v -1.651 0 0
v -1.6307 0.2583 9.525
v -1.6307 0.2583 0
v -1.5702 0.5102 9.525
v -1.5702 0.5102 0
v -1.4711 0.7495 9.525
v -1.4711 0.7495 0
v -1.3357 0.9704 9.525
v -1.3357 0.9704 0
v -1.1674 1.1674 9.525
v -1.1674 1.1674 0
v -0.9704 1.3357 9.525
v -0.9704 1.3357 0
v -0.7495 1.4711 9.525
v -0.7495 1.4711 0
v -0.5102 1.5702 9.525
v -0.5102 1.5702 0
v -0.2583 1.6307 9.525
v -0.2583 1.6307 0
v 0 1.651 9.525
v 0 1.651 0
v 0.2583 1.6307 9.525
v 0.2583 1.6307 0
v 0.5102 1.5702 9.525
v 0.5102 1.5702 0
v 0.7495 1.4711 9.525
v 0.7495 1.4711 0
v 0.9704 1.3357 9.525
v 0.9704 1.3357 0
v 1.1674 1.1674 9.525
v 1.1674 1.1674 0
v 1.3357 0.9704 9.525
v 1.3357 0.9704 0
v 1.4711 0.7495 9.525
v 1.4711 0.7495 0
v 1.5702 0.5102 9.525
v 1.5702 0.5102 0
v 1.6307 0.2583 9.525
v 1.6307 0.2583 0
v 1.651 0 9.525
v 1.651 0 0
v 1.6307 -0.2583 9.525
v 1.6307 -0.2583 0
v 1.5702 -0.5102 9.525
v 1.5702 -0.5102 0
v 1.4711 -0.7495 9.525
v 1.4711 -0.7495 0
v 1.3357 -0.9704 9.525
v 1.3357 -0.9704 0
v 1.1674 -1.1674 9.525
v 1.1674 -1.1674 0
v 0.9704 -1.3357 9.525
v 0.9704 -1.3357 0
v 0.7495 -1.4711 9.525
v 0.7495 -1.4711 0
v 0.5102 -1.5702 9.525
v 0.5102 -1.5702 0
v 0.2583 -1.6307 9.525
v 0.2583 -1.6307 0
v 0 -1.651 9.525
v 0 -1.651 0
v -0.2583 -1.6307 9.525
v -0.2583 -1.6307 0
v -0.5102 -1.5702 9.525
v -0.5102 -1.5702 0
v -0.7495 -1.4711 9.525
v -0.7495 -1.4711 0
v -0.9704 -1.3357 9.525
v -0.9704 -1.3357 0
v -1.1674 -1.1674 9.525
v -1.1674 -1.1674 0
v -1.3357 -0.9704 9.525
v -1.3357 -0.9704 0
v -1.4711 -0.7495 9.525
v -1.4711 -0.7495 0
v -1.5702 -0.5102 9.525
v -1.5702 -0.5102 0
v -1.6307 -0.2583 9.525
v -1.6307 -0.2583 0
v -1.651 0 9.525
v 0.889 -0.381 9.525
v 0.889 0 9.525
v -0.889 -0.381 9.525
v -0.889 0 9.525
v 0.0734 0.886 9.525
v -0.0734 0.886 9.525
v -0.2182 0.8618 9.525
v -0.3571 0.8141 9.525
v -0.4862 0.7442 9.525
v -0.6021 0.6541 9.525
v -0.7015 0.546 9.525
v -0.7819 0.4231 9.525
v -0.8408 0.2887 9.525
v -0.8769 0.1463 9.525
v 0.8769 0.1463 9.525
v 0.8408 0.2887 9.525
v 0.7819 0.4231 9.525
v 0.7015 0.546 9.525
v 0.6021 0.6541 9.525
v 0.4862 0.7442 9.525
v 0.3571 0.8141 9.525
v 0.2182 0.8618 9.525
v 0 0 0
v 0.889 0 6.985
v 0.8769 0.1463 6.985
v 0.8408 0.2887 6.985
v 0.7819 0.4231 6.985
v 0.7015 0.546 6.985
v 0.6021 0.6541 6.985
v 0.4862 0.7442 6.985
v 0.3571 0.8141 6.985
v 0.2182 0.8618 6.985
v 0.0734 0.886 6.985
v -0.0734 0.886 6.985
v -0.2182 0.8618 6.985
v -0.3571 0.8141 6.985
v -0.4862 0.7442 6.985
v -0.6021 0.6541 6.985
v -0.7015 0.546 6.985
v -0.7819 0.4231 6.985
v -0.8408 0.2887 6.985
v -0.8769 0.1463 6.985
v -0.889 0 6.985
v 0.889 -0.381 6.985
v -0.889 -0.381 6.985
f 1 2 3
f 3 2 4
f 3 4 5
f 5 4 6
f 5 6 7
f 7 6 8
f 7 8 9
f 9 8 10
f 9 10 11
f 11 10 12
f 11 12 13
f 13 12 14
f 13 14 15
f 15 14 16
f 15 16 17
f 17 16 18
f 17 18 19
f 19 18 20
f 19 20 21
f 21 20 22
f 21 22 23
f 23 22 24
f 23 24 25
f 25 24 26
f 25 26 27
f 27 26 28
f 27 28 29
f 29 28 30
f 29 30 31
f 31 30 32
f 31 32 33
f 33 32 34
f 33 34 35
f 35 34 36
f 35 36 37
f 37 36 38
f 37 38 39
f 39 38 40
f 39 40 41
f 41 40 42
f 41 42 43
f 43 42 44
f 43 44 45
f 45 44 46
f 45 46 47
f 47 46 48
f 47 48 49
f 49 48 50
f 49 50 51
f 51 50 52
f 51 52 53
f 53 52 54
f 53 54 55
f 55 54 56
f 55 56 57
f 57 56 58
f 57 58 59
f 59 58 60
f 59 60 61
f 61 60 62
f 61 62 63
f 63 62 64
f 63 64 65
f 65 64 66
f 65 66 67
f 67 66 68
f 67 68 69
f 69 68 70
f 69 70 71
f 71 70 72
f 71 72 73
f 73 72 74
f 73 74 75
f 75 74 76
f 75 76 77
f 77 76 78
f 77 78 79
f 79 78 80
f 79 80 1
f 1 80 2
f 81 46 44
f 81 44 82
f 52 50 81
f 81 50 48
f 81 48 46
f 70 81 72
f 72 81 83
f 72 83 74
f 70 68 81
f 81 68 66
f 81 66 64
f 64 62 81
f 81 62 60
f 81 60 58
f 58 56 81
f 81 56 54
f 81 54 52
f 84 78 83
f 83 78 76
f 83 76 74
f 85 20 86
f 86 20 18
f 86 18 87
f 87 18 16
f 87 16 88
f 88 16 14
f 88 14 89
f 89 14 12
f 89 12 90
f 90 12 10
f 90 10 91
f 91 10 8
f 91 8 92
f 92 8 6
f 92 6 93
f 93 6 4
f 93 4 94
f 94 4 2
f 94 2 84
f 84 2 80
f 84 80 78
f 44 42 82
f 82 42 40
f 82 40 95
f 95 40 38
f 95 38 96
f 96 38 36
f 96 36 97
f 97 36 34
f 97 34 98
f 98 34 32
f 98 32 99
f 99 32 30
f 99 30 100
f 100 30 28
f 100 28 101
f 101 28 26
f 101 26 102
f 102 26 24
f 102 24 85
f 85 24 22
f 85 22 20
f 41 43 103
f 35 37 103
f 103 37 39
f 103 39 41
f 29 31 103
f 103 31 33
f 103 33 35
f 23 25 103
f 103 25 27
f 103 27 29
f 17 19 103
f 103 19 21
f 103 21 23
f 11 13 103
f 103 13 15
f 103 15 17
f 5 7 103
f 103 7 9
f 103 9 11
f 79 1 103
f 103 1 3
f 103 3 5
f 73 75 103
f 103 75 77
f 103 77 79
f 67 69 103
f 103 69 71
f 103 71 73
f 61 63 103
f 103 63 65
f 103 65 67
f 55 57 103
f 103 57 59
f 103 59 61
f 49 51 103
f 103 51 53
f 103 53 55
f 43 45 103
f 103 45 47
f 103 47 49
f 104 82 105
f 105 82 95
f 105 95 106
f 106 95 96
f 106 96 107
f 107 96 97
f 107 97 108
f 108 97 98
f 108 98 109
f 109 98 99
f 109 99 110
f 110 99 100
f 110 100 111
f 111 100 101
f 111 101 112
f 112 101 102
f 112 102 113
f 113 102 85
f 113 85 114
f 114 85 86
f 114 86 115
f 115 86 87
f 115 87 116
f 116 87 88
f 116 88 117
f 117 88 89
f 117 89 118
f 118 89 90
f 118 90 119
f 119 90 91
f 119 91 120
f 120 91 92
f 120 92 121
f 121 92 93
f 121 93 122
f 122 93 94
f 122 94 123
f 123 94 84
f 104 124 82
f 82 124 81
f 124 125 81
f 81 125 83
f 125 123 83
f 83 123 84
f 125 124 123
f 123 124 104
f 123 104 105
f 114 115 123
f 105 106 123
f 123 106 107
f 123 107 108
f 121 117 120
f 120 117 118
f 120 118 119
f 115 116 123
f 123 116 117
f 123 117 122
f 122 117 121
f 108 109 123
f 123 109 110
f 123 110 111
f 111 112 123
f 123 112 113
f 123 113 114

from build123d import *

# Parameters (mm, degrees)
SKETCH1_R           = 1.651
BOSS_EXTRUDE1_DEPTH = 9.525
CUT_EXTRUDE1_DEPTH  = 2.54


with BuildPart() as part:
    # Sketch1 → Boss-Extrude1 (new body)
    with BuildSketch(Plane.XY):
        Circle(SKETCH1_R)
    extrude(amount=BOSS_EXTRUDE1_DEPTH)

    # Sketch2 → Cut-Extrude1 (cut)
    with BuildSketch(Plane.XY.offset(9.525)):
        with BuildLine():
            Line((-0.889, 0), (-0.889, -0.381))
            Line((-0.889, -0.381), (0.7112, -0.381))
            Line((0.7112, -0.381), (0.889, -0.381))
            Line((0.889, -0.381), (0.889, 0))
            ThreePointArc((0.889, 0), (0, 0.889), (-0.889, 0))
        make_face()
    extrude(amount=-CUT_EXTRUDE1_DEPTH, mode=Mode.SUBTRACT)


solid = part.part
